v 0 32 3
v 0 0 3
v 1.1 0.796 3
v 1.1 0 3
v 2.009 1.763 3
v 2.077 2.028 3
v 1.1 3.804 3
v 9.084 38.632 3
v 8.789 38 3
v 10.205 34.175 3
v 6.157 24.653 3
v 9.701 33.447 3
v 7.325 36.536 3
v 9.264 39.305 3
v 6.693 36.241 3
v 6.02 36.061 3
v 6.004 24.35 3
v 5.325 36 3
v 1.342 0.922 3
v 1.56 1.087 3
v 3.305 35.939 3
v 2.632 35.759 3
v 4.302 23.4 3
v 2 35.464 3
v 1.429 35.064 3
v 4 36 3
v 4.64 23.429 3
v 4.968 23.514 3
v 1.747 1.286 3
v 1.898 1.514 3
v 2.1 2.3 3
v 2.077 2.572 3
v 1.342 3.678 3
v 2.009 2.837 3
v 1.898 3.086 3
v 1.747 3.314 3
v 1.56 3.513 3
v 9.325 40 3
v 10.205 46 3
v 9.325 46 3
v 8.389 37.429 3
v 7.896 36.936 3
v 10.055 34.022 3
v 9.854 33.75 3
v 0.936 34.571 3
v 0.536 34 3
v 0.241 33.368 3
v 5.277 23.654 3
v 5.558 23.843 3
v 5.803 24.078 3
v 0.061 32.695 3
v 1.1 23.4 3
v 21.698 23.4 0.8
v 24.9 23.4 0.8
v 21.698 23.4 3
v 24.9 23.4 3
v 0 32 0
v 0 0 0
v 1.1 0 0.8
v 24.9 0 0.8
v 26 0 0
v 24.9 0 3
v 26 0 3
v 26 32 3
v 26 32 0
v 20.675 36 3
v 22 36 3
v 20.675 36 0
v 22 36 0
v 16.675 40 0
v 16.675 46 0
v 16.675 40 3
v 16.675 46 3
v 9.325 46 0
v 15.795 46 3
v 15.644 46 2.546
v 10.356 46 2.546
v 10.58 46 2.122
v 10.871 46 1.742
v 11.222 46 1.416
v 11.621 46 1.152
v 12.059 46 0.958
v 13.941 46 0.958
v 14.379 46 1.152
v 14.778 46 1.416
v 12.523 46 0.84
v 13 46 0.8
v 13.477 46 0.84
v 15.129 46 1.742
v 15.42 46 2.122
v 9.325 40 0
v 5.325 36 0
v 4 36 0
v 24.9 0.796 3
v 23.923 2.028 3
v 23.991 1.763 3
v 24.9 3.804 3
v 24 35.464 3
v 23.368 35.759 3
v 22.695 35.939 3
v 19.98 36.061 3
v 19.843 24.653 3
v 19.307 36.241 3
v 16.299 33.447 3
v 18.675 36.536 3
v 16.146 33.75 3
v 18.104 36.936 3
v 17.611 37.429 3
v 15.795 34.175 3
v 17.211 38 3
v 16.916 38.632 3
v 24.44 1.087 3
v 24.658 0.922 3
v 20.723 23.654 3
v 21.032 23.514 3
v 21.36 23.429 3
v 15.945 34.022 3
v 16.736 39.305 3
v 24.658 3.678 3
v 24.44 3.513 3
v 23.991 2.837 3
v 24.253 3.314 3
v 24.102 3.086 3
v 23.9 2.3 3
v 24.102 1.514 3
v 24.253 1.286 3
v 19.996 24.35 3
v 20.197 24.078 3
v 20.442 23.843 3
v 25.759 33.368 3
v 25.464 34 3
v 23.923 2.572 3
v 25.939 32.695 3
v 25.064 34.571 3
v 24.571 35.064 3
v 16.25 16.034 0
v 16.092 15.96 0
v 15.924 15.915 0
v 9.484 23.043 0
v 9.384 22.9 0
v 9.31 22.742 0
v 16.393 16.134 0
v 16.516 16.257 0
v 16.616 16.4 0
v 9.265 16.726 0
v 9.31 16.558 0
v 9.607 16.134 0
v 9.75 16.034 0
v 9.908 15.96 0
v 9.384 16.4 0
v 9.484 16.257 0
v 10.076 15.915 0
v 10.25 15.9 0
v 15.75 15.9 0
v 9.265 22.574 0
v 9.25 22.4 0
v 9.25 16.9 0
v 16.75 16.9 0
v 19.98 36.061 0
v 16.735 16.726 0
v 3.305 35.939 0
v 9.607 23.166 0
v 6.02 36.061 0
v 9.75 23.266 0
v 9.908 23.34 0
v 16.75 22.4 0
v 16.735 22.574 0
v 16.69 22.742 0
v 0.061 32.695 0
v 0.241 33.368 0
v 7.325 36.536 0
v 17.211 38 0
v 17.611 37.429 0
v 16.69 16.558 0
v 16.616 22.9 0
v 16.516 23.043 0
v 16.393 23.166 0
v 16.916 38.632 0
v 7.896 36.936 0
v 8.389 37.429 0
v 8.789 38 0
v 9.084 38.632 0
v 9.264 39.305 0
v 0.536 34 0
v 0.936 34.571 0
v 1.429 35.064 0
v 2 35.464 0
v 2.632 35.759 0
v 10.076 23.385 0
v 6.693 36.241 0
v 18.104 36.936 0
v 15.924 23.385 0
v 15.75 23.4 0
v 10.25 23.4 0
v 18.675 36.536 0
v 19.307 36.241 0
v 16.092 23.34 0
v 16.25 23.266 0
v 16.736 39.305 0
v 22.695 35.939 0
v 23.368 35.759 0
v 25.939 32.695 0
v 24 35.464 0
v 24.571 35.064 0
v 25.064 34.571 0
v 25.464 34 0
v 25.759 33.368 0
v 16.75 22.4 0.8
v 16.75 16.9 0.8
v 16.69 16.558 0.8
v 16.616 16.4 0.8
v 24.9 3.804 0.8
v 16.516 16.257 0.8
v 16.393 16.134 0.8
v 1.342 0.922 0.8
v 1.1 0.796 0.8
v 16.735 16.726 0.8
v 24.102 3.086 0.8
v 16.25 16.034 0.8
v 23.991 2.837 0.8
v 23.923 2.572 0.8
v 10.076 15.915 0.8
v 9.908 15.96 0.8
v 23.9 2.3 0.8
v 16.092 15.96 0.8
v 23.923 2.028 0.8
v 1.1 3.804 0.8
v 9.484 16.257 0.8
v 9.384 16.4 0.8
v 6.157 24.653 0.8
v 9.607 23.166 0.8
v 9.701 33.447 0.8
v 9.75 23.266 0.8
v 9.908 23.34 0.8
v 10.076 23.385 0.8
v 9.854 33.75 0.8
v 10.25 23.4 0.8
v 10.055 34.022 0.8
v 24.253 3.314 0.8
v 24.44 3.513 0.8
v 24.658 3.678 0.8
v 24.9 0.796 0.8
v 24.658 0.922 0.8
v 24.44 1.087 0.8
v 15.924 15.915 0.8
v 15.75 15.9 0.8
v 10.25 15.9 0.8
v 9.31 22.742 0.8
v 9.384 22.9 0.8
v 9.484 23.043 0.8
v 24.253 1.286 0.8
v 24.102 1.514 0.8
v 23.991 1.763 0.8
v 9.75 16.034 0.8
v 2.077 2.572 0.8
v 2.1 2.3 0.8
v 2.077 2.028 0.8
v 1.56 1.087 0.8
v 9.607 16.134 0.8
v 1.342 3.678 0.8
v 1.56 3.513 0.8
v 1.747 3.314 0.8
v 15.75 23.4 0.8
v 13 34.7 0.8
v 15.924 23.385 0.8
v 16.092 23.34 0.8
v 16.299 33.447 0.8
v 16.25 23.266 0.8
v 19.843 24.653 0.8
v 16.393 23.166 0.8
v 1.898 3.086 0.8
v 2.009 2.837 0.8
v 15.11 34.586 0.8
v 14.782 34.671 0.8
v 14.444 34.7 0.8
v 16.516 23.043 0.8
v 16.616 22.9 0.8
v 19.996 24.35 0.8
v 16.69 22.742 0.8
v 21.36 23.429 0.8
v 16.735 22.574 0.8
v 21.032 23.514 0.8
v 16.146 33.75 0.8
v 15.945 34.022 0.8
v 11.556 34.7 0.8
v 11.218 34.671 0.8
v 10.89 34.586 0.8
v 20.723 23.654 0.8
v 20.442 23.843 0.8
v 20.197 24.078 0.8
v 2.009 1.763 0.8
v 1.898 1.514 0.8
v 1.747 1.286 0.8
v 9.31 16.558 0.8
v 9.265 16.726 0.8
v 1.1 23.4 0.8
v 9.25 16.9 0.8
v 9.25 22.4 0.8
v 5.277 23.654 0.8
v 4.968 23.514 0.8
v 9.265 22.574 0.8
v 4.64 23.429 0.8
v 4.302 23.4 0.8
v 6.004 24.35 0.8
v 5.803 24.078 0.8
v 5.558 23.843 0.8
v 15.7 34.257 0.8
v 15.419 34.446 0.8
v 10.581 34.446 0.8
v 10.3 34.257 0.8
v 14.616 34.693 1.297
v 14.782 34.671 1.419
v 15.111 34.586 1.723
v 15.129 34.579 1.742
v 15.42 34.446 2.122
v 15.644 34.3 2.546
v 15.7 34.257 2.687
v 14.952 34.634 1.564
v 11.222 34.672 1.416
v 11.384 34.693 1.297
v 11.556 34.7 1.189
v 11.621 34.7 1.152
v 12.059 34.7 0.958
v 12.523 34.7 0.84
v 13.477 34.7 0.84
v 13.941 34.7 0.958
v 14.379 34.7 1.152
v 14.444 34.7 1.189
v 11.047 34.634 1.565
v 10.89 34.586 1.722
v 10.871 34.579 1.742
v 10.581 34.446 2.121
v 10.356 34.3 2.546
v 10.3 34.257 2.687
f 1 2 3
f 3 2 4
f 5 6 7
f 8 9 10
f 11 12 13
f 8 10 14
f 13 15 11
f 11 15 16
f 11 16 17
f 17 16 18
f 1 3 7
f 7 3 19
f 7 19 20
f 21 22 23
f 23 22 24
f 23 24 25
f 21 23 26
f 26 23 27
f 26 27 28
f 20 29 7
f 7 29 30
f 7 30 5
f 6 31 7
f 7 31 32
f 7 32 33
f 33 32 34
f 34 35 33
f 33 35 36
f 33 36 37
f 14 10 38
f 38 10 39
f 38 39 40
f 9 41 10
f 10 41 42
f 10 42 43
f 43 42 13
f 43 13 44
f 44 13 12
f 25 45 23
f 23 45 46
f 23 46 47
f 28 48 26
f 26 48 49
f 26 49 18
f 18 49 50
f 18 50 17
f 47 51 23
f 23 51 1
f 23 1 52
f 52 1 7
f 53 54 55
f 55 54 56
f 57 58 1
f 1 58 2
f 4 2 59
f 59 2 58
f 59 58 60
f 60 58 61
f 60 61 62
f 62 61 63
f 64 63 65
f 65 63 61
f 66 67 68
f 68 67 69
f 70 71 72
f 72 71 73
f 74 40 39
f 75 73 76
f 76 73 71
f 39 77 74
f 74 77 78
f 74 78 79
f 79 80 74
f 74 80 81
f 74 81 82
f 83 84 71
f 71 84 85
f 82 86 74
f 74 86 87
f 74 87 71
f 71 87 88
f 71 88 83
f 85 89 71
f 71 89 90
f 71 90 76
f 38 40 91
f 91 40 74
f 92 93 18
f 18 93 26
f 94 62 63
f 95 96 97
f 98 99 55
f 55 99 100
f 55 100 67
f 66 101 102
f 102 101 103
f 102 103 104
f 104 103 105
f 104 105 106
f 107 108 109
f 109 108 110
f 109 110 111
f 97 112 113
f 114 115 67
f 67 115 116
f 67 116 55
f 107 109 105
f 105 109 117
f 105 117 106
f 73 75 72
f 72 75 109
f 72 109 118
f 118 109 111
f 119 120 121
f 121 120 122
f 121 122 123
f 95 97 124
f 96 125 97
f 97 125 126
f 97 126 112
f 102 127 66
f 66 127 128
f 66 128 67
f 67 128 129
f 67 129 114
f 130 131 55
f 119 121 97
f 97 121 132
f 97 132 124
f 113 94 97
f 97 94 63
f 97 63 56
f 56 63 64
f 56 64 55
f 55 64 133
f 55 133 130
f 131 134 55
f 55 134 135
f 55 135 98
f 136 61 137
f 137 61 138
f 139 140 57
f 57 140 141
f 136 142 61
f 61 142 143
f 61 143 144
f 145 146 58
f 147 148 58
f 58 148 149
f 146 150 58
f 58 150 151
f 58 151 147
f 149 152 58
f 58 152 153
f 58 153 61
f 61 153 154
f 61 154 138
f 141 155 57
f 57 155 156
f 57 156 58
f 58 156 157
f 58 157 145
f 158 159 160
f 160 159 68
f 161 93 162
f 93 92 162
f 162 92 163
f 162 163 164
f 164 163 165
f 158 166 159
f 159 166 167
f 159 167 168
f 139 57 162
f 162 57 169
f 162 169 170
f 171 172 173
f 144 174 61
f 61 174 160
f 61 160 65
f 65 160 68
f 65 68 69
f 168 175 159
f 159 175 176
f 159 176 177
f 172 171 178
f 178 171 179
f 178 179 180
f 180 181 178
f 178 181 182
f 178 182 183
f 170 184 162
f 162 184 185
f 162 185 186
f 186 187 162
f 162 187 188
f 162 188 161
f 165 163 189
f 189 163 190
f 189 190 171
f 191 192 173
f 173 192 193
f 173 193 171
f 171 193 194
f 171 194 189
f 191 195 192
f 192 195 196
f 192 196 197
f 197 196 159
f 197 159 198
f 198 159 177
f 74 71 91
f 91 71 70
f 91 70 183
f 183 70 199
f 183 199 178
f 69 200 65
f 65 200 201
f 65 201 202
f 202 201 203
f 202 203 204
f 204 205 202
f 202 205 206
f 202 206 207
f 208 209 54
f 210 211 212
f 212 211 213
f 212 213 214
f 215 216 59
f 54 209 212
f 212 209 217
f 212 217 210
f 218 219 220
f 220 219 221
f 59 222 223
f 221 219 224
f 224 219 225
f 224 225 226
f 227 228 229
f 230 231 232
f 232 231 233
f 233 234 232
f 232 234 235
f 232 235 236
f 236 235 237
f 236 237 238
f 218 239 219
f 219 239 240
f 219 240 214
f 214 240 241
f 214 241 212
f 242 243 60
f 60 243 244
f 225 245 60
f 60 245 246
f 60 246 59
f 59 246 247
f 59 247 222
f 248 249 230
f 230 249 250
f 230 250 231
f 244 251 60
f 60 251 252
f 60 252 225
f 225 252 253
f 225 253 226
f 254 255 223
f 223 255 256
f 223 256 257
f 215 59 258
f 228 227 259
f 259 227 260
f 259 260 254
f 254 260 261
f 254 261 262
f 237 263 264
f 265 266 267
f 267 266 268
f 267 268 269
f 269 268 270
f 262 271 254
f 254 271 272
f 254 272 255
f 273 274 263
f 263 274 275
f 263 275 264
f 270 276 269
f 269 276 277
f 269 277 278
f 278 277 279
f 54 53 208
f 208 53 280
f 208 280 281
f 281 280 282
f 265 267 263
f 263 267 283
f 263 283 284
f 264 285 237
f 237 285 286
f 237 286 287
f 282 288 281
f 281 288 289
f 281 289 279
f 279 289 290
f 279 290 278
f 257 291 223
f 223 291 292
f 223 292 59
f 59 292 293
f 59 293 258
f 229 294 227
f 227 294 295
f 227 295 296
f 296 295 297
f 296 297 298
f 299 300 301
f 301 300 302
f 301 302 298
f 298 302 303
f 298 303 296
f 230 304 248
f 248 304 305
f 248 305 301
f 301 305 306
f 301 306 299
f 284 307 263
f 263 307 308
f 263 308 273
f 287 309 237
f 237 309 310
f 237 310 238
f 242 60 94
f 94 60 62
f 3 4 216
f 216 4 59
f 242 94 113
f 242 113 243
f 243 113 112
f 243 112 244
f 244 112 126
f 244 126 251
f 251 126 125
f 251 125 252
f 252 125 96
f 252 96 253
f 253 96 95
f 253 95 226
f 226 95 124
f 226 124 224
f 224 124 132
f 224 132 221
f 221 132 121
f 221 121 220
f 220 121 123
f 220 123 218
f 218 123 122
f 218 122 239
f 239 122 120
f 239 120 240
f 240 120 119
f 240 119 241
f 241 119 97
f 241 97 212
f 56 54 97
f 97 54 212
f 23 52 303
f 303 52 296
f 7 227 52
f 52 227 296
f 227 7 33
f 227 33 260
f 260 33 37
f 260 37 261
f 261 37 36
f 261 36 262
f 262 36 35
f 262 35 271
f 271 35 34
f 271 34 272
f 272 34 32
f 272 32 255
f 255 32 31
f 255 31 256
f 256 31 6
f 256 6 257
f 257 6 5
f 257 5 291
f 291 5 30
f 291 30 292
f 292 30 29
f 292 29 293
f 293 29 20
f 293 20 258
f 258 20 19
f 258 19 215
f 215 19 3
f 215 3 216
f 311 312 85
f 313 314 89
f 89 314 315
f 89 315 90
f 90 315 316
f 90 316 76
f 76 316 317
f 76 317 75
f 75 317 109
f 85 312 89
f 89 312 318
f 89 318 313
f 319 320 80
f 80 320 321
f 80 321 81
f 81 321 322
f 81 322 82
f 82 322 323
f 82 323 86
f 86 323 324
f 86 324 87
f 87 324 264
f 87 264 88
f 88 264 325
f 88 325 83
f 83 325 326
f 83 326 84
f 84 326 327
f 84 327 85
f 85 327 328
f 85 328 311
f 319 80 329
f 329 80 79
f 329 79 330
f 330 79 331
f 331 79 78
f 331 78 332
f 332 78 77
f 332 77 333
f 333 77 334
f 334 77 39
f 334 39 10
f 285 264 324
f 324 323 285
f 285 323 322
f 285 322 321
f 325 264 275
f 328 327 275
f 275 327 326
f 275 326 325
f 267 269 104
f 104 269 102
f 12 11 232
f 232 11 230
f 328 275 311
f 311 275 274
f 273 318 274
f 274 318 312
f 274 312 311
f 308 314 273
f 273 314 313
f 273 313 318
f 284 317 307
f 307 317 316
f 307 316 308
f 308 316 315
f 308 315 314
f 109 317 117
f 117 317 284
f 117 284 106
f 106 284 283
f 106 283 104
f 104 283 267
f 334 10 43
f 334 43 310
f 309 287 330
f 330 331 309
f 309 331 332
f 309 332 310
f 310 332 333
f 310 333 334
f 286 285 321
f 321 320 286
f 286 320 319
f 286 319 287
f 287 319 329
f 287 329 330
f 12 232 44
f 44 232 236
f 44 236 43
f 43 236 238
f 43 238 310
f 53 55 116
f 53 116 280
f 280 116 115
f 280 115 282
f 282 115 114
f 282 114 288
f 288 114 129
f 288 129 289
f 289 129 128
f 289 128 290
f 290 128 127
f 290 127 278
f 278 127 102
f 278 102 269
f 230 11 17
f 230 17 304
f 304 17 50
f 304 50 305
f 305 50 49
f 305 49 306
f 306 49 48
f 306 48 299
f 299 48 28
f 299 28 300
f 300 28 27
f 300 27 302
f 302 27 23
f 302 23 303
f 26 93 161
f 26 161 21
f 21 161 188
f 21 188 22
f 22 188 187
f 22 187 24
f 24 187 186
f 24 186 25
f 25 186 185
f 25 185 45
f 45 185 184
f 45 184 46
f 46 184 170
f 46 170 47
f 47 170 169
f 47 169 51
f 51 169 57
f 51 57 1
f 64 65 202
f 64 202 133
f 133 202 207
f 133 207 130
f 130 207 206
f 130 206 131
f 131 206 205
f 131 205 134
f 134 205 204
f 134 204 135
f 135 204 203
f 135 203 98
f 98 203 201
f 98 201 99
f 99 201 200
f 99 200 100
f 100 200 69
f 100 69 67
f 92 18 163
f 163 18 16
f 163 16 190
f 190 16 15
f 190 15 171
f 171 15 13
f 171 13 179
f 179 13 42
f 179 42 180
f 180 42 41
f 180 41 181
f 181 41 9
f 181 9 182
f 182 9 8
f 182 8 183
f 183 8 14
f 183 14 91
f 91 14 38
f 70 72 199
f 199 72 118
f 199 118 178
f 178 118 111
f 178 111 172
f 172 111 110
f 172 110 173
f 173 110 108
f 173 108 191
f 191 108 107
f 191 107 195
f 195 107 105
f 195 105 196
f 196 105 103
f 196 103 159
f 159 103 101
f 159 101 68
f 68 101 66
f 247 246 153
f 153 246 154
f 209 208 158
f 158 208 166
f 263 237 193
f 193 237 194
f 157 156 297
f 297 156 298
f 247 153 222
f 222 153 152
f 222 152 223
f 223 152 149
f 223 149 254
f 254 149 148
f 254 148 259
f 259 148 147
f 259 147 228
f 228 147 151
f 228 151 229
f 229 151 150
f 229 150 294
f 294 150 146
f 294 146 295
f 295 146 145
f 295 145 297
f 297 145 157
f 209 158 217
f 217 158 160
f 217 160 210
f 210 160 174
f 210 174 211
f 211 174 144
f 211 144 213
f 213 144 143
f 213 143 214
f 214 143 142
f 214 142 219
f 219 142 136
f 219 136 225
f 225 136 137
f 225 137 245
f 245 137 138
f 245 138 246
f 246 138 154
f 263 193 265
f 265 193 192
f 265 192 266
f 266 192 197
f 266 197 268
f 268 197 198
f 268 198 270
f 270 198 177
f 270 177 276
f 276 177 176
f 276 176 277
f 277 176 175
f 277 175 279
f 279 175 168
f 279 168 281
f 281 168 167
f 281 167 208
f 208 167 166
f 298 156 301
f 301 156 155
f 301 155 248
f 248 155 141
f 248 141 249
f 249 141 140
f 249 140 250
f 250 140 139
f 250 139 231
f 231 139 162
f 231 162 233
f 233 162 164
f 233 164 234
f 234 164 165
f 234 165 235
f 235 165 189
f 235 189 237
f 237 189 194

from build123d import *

# Parameters (mm, degrees)
BOSS_EXTRUDE1_DEPTH = 3
CUT_EXTRUDE1_DEPTH  = 2.2
SKETCH3_R           = 2.875
CUT_EXTRUDE2_DEPTH  = 22.6
CUT_EXTRUDE3_DEPTH  = 2.2
FILLET1_R           = 2
FILLET2_R           = 4
FILLET3_R           = 4
SKETCH5_W           = 7.5
SKETCH5_H           = 7.5
CUT_EXTRUDE4_DEPTH  = 0.8
FILLET4_R           = 1


with BuildPart() as part:
    # Sketch1 → Boss-Extrude1 (new body)
    with BuildSketch(Plane.XY):
        Polygon((0, 36), (9.325, 36), (9.325, 46), (16.675, 46), (16.675, 36), (26, 36), (26, 0), (0, 0), align=None)
    extrude(amount=BOSS_EXTRUDE1_DEPTH)

    # Sketch2 → Cut-Extrude1 (cut)
    with BuildSketch(Plane.XY.offset(3)):
        with BuildLine():
            Line((1.1, -0.4), (1.1, 0.795839104))
            ThreePointArc((1.1, 0.795839104), (2.1, 2.3), (1.1, 3.804160896))
            Line((1.1, 3.804160896), (1.1, 23.4))
            Line((1.1, 23.4), (24.9, 23.4))
            Line((24.9, 23.4), (24.9, 3.804160896))
            ThreePointArc((24.9, 3.804160896), (23.9, 2.3), (24.9, 0.795839104))
            Line((24.9, 0.795839104), (24.9, -0.4))
            Line((24.9, -0.4), (1.1, -0.4))
        make_face()
    extrude(amount=-CUT_EXTRUDE1_DEPTH, mode=Mode.SUBTRACT)

    # Sketch3 → Cut-Extrude2 (cut)
    with BuildSketch(Plane(origin=(0, 46, 0), x_dir=(1, 0, 0), z_dir=(0, 1, 0))):
        with Locations((13, -3.675)):
            Circle(SKETCH3_R)
    extrude(amount=-CUT_EXTRUDE2_DEPTH, mode=Mode.SUBTRACT)

    # Sketch4 → Cut-Extrude3 (cut)
    with BuildSketch(Plane.XY.offset(3)):
        Polygon((5.652681139, 23.4), (10.205362278, 34.7), (15.794637722, 34.7), (20.347318861, 23.4), align=None)
    extrude(amount=-CUT_EXTRUDE3_DEPTH, mode=Mode.SUBTRACT)

    # Fillet1
    fillet1_edges = [part.edges().sort_by_distance(p)[0] for p in [
        (10.205362278, 34.7, 1.9),
        (20.347318861, 23.4, 1.9),
        (15.794637722, 34.7, 1.9),
        (5.652681139, 23.4, 1.9),
    ]]
    fillet(fillet1_edges, radius=FILLET1_R)

    # Fillet2
    fillet2_edges = [part.edges().sort_by_distance(p)[0] for p in [
        (0, 36, 1.5),
        (26, 36, 1.5),
    ]]
    fillet(fillet2_edges, radius=FILLET2_R)

    # Fillet3
    fillet3_edges = [part.edges().sort_by_distance(p)[0] for p in [
        (9.325, 36, 1.5),
        (16.675, 36, 1.5),
    ]]
    fillet(fillet3_edges, radius=FILLET3_R)

    # Sketch5 → Cut-Extrude4 (cut)
    with BuildSketch(Plane.XY.offset(0.8)):
        with Locations((13, 19.65)):
            Rectangle(SKETCH5_W, SKETCH5_H)
    extrude(amount=-CUT_EXTRUDE4_DEPTH, mode=Mode.SUBTRACT)

    # Fillet4
    fillet4_edges = [part.edges().sort_by_distance(p)[0] for p in [
        (16.75, 15.9, 0.4),
        (16.75, 23.4, 0.4),
        (9.25, 23.4, 0.4),
        (9.25, 15.9, 0.4),
    ]]
    fillet(fillet4_edges, radius=FILLET4_R)


solid = part.part
